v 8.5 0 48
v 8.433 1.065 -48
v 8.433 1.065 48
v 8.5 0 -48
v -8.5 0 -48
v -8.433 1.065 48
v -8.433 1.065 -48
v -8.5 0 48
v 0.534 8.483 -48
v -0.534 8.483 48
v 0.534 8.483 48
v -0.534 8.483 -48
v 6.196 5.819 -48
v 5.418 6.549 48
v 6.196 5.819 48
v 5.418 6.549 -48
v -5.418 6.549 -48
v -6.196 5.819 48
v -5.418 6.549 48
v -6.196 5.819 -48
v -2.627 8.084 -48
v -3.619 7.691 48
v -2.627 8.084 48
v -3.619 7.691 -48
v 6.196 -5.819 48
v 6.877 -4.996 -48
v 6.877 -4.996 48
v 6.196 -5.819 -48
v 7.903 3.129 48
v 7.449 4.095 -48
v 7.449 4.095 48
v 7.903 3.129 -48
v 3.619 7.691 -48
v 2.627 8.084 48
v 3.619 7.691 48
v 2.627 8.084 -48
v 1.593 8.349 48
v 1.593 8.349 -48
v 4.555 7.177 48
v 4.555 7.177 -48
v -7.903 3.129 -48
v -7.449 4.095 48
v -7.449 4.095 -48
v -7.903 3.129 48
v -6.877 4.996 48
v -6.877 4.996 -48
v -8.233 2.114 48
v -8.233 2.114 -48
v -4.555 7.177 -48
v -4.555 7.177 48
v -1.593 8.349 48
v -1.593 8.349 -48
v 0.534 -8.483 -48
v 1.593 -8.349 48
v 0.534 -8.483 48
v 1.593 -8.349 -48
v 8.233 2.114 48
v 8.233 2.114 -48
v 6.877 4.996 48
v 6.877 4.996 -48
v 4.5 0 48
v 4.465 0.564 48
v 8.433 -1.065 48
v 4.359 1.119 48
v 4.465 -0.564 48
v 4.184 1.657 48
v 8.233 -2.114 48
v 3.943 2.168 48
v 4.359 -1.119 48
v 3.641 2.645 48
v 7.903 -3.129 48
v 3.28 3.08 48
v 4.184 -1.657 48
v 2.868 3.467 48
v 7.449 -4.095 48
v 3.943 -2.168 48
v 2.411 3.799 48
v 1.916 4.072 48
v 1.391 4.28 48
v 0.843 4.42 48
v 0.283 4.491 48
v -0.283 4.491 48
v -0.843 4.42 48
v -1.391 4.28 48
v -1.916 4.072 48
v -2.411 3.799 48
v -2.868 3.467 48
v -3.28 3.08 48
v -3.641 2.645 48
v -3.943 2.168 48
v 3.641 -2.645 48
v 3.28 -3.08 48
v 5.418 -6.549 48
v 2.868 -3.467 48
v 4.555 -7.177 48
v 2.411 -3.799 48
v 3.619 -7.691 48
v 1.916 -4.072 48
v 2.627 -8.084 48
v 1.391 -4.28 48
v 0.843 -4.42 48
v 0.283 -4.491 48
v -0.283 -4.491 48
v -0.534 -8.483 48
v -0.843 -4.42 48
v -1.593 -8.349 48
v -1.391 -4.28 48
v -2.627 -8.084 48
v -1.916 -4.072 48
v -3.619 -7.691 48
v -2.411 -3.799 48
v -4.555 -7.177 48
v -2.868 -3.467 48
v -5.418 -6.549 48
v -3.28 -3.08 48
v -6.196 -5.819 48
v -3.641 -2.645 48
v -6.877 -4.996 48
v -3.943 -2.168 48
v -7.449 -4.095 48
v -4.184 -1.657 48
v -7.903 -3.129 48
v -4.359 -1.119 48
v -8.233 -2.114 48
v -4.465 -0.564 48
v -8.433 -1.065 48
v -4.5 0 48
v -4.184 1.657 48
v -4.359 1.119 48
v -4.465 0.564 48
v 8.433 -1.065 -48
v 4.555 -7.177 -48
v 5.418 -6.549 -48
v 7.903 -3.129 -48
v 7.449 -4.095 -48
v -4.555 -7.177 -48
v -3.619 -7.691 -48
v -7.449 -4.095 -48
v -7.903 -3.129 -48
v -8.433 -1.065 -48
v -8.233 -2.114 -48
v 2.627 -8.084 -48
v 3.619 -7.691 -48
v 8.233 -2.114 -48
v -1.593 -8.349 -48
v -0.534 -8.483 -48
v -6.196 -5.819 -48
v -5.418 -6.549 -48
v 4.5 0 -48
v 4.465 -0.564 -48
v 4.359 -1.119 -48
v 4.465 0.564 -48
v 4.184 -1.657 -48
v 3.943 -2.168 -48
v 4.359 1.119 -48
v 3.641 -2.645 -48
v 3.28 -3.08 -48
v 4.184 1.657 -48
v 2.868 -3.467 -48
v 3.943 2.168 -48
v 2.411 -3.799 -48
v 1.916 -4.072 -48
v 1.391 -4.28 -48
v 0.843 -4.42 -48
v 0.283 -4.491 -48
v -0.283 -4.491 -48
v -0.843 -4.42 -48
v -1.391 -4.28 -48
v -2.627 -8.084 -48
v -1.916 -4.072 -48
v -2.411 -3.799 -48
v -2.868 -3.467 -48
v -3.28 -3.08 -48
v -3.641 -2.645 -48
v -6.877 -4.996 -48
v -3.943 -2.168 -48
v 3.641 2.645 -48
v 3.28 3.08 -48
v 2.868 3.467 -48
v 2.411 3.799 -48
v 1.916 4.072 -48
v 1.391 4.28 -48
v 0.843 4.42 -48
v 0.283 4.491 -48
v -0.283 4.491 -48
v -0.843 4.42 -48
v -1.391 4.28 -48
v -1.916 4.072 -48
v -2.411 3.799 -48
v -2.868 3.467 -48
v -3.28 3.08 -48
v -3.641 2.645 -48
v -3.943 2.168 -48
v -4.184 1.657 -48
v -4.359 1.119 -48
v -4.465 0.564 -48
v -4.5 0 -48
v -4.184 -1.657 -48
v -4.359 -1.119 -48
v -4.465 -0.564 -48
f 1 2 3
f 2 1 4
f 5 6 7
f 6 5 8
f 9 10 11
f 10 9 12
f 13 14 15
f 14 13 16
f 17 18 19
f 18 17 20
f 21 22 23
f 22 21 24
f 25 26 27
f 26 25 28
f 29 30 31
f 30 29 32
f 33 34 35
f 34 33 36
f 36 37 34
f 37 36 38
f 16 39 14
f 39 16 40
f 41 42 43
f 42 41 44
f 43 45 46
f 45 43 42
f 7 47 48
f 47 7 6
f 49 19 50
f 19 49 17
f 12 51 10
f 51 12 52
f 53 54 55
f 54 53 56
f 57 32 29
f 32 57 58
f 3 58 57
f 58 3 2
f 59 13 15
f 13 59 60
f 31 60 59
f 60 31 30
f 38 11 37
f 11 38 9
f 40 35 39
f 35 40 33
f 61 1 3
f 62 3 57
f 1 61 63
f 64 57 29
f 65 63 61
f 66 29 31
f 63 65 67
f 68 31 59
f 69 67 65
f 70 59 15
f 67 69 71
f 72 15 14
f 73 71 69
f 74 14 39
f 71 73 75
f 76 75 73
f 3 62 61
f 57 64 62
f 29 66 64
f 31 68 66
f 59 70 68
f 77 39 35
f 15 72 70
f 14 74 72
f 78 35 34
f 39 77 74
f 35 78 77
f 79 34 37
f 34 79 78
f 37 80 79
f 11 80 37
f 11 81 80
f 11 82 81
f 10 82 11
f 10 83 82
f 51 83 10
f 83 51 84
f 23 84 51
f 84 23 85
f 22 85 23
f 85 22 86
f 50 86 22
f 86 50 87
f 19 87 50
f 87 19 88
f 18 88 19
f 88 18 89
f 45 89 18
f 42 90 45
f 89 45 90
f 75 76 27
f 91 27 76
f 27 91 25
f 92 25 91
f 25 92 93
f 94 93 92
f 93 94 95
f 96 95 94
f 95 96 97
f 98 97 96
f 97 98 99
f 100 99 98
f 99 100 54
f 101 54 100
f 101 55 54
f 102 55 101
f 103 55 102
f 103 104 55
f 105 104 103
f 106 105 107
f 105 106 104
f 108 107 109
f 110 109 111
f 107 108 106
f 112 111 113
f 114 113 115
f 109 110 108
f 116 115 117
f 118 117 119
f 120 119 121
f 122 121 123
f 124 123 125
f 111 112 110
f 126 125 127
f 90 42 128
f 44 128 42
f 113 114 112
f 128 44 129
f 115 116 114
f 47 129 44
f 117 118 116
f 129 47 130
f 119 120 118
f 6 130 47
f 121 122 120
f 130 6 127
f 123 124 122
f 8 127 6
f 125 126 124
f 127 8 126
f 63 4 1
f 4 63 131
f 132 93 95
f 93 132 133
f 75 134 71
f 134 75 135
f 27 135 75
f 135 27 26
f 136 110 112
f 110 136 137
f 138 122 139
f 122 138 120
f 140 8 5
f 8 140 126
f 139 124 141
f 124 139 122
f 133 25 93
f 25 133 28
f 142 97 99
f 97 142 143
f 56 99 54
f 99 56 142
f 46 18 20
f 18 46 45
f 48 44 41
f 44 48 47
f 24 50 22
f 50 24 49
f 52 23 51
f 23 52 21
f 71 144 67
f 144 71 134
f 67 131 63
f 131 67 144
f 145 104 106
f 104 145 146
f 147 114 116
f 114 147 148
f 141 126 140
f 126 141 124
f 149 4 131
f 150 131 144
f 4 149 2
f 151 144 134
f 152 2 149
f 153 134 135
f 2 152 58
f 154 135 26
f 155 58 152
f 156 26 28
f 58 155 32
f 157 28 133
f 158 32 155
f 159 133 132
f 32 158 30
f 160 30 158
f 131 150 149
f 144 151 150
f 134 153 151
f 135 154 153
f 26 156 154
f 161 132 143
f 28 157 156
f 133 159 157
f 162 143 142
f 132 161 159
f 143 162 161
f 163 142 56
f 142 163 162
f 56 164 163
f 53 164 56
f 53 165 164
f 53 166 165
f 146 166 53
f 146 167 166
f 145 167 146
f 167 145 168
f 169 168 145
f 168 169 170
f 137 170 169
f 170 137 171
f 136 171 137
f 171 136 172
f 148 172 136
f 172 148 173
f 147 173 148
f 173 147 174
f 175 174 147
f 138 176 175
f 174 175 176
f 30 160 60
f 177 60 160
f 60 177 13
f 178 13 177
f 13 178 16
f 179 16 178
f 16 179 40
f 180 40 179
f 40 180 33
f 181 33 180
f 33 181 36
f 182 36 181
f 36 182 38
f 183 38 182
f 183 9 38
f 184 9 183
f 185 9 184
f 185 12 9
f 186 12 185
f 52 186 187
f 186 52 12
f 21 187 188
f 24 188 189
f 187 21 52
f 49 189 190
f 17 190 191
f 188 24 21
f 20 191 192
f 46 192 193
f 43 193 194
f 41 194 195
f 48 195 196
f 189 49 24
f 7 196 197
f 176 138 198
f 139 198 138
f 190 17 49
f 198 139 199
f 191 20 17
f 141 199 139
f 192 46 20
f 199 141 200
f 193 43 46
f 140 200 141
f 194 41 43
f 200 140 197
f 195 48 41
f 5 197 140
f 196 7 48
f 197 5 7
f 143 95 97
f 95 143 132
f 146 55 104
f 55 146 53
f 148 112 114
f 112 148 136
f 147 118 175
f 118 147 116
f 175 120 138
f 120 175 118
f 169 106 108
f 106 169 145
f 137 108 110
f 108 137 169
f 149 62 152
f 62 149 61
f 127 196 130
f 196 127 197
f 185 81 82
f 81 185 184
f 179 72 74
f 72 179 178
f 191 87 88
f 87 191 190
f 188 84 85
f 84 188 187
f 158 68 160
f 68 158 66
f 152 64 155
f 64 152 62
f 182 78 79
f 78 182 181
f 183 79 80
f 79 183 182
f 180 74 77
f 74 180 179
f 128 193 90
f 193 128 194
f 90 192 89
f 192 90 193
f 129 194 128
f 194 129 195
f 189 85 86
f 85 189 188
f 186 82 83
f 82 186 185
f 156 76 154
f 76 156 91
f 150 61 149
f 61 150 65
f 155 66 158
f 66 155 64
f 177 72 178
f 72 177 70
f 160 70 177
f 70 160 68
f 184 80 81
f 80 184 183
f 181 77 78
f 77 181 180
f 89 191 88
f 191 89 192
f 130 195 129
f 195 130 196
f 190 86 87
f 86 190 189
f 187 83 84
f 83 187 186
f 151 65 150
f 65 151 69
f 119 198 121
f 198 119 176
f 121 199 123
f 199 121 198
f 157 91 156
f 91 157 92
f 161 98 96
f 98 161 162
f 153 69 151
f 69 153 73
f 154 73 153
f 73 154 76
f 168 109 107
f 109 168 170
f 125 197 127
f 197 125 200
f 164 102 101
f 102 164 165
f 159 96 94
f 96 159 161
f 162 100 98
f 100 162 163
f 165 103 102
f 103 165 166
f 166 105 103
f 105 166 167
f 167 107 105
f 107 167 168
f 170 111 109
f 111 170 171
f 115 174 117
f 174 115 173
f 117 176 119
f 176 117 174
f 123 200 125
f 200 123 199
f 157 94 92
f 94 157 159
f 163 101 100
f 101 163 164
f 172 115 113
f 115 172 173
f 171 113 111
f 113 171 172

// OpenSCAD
$fn = 50;


difference() {
	union() {
		translate(v = [0, 0, -48.0000000000]) {
			cylinder(h = 96, r = 8.5000000000);
		}
	}
	union() {
		translate(v = [0, 0, -100.0000000000]) {
			cylinder(h = 200, r = 4.5000000000);
		}
	}
}
